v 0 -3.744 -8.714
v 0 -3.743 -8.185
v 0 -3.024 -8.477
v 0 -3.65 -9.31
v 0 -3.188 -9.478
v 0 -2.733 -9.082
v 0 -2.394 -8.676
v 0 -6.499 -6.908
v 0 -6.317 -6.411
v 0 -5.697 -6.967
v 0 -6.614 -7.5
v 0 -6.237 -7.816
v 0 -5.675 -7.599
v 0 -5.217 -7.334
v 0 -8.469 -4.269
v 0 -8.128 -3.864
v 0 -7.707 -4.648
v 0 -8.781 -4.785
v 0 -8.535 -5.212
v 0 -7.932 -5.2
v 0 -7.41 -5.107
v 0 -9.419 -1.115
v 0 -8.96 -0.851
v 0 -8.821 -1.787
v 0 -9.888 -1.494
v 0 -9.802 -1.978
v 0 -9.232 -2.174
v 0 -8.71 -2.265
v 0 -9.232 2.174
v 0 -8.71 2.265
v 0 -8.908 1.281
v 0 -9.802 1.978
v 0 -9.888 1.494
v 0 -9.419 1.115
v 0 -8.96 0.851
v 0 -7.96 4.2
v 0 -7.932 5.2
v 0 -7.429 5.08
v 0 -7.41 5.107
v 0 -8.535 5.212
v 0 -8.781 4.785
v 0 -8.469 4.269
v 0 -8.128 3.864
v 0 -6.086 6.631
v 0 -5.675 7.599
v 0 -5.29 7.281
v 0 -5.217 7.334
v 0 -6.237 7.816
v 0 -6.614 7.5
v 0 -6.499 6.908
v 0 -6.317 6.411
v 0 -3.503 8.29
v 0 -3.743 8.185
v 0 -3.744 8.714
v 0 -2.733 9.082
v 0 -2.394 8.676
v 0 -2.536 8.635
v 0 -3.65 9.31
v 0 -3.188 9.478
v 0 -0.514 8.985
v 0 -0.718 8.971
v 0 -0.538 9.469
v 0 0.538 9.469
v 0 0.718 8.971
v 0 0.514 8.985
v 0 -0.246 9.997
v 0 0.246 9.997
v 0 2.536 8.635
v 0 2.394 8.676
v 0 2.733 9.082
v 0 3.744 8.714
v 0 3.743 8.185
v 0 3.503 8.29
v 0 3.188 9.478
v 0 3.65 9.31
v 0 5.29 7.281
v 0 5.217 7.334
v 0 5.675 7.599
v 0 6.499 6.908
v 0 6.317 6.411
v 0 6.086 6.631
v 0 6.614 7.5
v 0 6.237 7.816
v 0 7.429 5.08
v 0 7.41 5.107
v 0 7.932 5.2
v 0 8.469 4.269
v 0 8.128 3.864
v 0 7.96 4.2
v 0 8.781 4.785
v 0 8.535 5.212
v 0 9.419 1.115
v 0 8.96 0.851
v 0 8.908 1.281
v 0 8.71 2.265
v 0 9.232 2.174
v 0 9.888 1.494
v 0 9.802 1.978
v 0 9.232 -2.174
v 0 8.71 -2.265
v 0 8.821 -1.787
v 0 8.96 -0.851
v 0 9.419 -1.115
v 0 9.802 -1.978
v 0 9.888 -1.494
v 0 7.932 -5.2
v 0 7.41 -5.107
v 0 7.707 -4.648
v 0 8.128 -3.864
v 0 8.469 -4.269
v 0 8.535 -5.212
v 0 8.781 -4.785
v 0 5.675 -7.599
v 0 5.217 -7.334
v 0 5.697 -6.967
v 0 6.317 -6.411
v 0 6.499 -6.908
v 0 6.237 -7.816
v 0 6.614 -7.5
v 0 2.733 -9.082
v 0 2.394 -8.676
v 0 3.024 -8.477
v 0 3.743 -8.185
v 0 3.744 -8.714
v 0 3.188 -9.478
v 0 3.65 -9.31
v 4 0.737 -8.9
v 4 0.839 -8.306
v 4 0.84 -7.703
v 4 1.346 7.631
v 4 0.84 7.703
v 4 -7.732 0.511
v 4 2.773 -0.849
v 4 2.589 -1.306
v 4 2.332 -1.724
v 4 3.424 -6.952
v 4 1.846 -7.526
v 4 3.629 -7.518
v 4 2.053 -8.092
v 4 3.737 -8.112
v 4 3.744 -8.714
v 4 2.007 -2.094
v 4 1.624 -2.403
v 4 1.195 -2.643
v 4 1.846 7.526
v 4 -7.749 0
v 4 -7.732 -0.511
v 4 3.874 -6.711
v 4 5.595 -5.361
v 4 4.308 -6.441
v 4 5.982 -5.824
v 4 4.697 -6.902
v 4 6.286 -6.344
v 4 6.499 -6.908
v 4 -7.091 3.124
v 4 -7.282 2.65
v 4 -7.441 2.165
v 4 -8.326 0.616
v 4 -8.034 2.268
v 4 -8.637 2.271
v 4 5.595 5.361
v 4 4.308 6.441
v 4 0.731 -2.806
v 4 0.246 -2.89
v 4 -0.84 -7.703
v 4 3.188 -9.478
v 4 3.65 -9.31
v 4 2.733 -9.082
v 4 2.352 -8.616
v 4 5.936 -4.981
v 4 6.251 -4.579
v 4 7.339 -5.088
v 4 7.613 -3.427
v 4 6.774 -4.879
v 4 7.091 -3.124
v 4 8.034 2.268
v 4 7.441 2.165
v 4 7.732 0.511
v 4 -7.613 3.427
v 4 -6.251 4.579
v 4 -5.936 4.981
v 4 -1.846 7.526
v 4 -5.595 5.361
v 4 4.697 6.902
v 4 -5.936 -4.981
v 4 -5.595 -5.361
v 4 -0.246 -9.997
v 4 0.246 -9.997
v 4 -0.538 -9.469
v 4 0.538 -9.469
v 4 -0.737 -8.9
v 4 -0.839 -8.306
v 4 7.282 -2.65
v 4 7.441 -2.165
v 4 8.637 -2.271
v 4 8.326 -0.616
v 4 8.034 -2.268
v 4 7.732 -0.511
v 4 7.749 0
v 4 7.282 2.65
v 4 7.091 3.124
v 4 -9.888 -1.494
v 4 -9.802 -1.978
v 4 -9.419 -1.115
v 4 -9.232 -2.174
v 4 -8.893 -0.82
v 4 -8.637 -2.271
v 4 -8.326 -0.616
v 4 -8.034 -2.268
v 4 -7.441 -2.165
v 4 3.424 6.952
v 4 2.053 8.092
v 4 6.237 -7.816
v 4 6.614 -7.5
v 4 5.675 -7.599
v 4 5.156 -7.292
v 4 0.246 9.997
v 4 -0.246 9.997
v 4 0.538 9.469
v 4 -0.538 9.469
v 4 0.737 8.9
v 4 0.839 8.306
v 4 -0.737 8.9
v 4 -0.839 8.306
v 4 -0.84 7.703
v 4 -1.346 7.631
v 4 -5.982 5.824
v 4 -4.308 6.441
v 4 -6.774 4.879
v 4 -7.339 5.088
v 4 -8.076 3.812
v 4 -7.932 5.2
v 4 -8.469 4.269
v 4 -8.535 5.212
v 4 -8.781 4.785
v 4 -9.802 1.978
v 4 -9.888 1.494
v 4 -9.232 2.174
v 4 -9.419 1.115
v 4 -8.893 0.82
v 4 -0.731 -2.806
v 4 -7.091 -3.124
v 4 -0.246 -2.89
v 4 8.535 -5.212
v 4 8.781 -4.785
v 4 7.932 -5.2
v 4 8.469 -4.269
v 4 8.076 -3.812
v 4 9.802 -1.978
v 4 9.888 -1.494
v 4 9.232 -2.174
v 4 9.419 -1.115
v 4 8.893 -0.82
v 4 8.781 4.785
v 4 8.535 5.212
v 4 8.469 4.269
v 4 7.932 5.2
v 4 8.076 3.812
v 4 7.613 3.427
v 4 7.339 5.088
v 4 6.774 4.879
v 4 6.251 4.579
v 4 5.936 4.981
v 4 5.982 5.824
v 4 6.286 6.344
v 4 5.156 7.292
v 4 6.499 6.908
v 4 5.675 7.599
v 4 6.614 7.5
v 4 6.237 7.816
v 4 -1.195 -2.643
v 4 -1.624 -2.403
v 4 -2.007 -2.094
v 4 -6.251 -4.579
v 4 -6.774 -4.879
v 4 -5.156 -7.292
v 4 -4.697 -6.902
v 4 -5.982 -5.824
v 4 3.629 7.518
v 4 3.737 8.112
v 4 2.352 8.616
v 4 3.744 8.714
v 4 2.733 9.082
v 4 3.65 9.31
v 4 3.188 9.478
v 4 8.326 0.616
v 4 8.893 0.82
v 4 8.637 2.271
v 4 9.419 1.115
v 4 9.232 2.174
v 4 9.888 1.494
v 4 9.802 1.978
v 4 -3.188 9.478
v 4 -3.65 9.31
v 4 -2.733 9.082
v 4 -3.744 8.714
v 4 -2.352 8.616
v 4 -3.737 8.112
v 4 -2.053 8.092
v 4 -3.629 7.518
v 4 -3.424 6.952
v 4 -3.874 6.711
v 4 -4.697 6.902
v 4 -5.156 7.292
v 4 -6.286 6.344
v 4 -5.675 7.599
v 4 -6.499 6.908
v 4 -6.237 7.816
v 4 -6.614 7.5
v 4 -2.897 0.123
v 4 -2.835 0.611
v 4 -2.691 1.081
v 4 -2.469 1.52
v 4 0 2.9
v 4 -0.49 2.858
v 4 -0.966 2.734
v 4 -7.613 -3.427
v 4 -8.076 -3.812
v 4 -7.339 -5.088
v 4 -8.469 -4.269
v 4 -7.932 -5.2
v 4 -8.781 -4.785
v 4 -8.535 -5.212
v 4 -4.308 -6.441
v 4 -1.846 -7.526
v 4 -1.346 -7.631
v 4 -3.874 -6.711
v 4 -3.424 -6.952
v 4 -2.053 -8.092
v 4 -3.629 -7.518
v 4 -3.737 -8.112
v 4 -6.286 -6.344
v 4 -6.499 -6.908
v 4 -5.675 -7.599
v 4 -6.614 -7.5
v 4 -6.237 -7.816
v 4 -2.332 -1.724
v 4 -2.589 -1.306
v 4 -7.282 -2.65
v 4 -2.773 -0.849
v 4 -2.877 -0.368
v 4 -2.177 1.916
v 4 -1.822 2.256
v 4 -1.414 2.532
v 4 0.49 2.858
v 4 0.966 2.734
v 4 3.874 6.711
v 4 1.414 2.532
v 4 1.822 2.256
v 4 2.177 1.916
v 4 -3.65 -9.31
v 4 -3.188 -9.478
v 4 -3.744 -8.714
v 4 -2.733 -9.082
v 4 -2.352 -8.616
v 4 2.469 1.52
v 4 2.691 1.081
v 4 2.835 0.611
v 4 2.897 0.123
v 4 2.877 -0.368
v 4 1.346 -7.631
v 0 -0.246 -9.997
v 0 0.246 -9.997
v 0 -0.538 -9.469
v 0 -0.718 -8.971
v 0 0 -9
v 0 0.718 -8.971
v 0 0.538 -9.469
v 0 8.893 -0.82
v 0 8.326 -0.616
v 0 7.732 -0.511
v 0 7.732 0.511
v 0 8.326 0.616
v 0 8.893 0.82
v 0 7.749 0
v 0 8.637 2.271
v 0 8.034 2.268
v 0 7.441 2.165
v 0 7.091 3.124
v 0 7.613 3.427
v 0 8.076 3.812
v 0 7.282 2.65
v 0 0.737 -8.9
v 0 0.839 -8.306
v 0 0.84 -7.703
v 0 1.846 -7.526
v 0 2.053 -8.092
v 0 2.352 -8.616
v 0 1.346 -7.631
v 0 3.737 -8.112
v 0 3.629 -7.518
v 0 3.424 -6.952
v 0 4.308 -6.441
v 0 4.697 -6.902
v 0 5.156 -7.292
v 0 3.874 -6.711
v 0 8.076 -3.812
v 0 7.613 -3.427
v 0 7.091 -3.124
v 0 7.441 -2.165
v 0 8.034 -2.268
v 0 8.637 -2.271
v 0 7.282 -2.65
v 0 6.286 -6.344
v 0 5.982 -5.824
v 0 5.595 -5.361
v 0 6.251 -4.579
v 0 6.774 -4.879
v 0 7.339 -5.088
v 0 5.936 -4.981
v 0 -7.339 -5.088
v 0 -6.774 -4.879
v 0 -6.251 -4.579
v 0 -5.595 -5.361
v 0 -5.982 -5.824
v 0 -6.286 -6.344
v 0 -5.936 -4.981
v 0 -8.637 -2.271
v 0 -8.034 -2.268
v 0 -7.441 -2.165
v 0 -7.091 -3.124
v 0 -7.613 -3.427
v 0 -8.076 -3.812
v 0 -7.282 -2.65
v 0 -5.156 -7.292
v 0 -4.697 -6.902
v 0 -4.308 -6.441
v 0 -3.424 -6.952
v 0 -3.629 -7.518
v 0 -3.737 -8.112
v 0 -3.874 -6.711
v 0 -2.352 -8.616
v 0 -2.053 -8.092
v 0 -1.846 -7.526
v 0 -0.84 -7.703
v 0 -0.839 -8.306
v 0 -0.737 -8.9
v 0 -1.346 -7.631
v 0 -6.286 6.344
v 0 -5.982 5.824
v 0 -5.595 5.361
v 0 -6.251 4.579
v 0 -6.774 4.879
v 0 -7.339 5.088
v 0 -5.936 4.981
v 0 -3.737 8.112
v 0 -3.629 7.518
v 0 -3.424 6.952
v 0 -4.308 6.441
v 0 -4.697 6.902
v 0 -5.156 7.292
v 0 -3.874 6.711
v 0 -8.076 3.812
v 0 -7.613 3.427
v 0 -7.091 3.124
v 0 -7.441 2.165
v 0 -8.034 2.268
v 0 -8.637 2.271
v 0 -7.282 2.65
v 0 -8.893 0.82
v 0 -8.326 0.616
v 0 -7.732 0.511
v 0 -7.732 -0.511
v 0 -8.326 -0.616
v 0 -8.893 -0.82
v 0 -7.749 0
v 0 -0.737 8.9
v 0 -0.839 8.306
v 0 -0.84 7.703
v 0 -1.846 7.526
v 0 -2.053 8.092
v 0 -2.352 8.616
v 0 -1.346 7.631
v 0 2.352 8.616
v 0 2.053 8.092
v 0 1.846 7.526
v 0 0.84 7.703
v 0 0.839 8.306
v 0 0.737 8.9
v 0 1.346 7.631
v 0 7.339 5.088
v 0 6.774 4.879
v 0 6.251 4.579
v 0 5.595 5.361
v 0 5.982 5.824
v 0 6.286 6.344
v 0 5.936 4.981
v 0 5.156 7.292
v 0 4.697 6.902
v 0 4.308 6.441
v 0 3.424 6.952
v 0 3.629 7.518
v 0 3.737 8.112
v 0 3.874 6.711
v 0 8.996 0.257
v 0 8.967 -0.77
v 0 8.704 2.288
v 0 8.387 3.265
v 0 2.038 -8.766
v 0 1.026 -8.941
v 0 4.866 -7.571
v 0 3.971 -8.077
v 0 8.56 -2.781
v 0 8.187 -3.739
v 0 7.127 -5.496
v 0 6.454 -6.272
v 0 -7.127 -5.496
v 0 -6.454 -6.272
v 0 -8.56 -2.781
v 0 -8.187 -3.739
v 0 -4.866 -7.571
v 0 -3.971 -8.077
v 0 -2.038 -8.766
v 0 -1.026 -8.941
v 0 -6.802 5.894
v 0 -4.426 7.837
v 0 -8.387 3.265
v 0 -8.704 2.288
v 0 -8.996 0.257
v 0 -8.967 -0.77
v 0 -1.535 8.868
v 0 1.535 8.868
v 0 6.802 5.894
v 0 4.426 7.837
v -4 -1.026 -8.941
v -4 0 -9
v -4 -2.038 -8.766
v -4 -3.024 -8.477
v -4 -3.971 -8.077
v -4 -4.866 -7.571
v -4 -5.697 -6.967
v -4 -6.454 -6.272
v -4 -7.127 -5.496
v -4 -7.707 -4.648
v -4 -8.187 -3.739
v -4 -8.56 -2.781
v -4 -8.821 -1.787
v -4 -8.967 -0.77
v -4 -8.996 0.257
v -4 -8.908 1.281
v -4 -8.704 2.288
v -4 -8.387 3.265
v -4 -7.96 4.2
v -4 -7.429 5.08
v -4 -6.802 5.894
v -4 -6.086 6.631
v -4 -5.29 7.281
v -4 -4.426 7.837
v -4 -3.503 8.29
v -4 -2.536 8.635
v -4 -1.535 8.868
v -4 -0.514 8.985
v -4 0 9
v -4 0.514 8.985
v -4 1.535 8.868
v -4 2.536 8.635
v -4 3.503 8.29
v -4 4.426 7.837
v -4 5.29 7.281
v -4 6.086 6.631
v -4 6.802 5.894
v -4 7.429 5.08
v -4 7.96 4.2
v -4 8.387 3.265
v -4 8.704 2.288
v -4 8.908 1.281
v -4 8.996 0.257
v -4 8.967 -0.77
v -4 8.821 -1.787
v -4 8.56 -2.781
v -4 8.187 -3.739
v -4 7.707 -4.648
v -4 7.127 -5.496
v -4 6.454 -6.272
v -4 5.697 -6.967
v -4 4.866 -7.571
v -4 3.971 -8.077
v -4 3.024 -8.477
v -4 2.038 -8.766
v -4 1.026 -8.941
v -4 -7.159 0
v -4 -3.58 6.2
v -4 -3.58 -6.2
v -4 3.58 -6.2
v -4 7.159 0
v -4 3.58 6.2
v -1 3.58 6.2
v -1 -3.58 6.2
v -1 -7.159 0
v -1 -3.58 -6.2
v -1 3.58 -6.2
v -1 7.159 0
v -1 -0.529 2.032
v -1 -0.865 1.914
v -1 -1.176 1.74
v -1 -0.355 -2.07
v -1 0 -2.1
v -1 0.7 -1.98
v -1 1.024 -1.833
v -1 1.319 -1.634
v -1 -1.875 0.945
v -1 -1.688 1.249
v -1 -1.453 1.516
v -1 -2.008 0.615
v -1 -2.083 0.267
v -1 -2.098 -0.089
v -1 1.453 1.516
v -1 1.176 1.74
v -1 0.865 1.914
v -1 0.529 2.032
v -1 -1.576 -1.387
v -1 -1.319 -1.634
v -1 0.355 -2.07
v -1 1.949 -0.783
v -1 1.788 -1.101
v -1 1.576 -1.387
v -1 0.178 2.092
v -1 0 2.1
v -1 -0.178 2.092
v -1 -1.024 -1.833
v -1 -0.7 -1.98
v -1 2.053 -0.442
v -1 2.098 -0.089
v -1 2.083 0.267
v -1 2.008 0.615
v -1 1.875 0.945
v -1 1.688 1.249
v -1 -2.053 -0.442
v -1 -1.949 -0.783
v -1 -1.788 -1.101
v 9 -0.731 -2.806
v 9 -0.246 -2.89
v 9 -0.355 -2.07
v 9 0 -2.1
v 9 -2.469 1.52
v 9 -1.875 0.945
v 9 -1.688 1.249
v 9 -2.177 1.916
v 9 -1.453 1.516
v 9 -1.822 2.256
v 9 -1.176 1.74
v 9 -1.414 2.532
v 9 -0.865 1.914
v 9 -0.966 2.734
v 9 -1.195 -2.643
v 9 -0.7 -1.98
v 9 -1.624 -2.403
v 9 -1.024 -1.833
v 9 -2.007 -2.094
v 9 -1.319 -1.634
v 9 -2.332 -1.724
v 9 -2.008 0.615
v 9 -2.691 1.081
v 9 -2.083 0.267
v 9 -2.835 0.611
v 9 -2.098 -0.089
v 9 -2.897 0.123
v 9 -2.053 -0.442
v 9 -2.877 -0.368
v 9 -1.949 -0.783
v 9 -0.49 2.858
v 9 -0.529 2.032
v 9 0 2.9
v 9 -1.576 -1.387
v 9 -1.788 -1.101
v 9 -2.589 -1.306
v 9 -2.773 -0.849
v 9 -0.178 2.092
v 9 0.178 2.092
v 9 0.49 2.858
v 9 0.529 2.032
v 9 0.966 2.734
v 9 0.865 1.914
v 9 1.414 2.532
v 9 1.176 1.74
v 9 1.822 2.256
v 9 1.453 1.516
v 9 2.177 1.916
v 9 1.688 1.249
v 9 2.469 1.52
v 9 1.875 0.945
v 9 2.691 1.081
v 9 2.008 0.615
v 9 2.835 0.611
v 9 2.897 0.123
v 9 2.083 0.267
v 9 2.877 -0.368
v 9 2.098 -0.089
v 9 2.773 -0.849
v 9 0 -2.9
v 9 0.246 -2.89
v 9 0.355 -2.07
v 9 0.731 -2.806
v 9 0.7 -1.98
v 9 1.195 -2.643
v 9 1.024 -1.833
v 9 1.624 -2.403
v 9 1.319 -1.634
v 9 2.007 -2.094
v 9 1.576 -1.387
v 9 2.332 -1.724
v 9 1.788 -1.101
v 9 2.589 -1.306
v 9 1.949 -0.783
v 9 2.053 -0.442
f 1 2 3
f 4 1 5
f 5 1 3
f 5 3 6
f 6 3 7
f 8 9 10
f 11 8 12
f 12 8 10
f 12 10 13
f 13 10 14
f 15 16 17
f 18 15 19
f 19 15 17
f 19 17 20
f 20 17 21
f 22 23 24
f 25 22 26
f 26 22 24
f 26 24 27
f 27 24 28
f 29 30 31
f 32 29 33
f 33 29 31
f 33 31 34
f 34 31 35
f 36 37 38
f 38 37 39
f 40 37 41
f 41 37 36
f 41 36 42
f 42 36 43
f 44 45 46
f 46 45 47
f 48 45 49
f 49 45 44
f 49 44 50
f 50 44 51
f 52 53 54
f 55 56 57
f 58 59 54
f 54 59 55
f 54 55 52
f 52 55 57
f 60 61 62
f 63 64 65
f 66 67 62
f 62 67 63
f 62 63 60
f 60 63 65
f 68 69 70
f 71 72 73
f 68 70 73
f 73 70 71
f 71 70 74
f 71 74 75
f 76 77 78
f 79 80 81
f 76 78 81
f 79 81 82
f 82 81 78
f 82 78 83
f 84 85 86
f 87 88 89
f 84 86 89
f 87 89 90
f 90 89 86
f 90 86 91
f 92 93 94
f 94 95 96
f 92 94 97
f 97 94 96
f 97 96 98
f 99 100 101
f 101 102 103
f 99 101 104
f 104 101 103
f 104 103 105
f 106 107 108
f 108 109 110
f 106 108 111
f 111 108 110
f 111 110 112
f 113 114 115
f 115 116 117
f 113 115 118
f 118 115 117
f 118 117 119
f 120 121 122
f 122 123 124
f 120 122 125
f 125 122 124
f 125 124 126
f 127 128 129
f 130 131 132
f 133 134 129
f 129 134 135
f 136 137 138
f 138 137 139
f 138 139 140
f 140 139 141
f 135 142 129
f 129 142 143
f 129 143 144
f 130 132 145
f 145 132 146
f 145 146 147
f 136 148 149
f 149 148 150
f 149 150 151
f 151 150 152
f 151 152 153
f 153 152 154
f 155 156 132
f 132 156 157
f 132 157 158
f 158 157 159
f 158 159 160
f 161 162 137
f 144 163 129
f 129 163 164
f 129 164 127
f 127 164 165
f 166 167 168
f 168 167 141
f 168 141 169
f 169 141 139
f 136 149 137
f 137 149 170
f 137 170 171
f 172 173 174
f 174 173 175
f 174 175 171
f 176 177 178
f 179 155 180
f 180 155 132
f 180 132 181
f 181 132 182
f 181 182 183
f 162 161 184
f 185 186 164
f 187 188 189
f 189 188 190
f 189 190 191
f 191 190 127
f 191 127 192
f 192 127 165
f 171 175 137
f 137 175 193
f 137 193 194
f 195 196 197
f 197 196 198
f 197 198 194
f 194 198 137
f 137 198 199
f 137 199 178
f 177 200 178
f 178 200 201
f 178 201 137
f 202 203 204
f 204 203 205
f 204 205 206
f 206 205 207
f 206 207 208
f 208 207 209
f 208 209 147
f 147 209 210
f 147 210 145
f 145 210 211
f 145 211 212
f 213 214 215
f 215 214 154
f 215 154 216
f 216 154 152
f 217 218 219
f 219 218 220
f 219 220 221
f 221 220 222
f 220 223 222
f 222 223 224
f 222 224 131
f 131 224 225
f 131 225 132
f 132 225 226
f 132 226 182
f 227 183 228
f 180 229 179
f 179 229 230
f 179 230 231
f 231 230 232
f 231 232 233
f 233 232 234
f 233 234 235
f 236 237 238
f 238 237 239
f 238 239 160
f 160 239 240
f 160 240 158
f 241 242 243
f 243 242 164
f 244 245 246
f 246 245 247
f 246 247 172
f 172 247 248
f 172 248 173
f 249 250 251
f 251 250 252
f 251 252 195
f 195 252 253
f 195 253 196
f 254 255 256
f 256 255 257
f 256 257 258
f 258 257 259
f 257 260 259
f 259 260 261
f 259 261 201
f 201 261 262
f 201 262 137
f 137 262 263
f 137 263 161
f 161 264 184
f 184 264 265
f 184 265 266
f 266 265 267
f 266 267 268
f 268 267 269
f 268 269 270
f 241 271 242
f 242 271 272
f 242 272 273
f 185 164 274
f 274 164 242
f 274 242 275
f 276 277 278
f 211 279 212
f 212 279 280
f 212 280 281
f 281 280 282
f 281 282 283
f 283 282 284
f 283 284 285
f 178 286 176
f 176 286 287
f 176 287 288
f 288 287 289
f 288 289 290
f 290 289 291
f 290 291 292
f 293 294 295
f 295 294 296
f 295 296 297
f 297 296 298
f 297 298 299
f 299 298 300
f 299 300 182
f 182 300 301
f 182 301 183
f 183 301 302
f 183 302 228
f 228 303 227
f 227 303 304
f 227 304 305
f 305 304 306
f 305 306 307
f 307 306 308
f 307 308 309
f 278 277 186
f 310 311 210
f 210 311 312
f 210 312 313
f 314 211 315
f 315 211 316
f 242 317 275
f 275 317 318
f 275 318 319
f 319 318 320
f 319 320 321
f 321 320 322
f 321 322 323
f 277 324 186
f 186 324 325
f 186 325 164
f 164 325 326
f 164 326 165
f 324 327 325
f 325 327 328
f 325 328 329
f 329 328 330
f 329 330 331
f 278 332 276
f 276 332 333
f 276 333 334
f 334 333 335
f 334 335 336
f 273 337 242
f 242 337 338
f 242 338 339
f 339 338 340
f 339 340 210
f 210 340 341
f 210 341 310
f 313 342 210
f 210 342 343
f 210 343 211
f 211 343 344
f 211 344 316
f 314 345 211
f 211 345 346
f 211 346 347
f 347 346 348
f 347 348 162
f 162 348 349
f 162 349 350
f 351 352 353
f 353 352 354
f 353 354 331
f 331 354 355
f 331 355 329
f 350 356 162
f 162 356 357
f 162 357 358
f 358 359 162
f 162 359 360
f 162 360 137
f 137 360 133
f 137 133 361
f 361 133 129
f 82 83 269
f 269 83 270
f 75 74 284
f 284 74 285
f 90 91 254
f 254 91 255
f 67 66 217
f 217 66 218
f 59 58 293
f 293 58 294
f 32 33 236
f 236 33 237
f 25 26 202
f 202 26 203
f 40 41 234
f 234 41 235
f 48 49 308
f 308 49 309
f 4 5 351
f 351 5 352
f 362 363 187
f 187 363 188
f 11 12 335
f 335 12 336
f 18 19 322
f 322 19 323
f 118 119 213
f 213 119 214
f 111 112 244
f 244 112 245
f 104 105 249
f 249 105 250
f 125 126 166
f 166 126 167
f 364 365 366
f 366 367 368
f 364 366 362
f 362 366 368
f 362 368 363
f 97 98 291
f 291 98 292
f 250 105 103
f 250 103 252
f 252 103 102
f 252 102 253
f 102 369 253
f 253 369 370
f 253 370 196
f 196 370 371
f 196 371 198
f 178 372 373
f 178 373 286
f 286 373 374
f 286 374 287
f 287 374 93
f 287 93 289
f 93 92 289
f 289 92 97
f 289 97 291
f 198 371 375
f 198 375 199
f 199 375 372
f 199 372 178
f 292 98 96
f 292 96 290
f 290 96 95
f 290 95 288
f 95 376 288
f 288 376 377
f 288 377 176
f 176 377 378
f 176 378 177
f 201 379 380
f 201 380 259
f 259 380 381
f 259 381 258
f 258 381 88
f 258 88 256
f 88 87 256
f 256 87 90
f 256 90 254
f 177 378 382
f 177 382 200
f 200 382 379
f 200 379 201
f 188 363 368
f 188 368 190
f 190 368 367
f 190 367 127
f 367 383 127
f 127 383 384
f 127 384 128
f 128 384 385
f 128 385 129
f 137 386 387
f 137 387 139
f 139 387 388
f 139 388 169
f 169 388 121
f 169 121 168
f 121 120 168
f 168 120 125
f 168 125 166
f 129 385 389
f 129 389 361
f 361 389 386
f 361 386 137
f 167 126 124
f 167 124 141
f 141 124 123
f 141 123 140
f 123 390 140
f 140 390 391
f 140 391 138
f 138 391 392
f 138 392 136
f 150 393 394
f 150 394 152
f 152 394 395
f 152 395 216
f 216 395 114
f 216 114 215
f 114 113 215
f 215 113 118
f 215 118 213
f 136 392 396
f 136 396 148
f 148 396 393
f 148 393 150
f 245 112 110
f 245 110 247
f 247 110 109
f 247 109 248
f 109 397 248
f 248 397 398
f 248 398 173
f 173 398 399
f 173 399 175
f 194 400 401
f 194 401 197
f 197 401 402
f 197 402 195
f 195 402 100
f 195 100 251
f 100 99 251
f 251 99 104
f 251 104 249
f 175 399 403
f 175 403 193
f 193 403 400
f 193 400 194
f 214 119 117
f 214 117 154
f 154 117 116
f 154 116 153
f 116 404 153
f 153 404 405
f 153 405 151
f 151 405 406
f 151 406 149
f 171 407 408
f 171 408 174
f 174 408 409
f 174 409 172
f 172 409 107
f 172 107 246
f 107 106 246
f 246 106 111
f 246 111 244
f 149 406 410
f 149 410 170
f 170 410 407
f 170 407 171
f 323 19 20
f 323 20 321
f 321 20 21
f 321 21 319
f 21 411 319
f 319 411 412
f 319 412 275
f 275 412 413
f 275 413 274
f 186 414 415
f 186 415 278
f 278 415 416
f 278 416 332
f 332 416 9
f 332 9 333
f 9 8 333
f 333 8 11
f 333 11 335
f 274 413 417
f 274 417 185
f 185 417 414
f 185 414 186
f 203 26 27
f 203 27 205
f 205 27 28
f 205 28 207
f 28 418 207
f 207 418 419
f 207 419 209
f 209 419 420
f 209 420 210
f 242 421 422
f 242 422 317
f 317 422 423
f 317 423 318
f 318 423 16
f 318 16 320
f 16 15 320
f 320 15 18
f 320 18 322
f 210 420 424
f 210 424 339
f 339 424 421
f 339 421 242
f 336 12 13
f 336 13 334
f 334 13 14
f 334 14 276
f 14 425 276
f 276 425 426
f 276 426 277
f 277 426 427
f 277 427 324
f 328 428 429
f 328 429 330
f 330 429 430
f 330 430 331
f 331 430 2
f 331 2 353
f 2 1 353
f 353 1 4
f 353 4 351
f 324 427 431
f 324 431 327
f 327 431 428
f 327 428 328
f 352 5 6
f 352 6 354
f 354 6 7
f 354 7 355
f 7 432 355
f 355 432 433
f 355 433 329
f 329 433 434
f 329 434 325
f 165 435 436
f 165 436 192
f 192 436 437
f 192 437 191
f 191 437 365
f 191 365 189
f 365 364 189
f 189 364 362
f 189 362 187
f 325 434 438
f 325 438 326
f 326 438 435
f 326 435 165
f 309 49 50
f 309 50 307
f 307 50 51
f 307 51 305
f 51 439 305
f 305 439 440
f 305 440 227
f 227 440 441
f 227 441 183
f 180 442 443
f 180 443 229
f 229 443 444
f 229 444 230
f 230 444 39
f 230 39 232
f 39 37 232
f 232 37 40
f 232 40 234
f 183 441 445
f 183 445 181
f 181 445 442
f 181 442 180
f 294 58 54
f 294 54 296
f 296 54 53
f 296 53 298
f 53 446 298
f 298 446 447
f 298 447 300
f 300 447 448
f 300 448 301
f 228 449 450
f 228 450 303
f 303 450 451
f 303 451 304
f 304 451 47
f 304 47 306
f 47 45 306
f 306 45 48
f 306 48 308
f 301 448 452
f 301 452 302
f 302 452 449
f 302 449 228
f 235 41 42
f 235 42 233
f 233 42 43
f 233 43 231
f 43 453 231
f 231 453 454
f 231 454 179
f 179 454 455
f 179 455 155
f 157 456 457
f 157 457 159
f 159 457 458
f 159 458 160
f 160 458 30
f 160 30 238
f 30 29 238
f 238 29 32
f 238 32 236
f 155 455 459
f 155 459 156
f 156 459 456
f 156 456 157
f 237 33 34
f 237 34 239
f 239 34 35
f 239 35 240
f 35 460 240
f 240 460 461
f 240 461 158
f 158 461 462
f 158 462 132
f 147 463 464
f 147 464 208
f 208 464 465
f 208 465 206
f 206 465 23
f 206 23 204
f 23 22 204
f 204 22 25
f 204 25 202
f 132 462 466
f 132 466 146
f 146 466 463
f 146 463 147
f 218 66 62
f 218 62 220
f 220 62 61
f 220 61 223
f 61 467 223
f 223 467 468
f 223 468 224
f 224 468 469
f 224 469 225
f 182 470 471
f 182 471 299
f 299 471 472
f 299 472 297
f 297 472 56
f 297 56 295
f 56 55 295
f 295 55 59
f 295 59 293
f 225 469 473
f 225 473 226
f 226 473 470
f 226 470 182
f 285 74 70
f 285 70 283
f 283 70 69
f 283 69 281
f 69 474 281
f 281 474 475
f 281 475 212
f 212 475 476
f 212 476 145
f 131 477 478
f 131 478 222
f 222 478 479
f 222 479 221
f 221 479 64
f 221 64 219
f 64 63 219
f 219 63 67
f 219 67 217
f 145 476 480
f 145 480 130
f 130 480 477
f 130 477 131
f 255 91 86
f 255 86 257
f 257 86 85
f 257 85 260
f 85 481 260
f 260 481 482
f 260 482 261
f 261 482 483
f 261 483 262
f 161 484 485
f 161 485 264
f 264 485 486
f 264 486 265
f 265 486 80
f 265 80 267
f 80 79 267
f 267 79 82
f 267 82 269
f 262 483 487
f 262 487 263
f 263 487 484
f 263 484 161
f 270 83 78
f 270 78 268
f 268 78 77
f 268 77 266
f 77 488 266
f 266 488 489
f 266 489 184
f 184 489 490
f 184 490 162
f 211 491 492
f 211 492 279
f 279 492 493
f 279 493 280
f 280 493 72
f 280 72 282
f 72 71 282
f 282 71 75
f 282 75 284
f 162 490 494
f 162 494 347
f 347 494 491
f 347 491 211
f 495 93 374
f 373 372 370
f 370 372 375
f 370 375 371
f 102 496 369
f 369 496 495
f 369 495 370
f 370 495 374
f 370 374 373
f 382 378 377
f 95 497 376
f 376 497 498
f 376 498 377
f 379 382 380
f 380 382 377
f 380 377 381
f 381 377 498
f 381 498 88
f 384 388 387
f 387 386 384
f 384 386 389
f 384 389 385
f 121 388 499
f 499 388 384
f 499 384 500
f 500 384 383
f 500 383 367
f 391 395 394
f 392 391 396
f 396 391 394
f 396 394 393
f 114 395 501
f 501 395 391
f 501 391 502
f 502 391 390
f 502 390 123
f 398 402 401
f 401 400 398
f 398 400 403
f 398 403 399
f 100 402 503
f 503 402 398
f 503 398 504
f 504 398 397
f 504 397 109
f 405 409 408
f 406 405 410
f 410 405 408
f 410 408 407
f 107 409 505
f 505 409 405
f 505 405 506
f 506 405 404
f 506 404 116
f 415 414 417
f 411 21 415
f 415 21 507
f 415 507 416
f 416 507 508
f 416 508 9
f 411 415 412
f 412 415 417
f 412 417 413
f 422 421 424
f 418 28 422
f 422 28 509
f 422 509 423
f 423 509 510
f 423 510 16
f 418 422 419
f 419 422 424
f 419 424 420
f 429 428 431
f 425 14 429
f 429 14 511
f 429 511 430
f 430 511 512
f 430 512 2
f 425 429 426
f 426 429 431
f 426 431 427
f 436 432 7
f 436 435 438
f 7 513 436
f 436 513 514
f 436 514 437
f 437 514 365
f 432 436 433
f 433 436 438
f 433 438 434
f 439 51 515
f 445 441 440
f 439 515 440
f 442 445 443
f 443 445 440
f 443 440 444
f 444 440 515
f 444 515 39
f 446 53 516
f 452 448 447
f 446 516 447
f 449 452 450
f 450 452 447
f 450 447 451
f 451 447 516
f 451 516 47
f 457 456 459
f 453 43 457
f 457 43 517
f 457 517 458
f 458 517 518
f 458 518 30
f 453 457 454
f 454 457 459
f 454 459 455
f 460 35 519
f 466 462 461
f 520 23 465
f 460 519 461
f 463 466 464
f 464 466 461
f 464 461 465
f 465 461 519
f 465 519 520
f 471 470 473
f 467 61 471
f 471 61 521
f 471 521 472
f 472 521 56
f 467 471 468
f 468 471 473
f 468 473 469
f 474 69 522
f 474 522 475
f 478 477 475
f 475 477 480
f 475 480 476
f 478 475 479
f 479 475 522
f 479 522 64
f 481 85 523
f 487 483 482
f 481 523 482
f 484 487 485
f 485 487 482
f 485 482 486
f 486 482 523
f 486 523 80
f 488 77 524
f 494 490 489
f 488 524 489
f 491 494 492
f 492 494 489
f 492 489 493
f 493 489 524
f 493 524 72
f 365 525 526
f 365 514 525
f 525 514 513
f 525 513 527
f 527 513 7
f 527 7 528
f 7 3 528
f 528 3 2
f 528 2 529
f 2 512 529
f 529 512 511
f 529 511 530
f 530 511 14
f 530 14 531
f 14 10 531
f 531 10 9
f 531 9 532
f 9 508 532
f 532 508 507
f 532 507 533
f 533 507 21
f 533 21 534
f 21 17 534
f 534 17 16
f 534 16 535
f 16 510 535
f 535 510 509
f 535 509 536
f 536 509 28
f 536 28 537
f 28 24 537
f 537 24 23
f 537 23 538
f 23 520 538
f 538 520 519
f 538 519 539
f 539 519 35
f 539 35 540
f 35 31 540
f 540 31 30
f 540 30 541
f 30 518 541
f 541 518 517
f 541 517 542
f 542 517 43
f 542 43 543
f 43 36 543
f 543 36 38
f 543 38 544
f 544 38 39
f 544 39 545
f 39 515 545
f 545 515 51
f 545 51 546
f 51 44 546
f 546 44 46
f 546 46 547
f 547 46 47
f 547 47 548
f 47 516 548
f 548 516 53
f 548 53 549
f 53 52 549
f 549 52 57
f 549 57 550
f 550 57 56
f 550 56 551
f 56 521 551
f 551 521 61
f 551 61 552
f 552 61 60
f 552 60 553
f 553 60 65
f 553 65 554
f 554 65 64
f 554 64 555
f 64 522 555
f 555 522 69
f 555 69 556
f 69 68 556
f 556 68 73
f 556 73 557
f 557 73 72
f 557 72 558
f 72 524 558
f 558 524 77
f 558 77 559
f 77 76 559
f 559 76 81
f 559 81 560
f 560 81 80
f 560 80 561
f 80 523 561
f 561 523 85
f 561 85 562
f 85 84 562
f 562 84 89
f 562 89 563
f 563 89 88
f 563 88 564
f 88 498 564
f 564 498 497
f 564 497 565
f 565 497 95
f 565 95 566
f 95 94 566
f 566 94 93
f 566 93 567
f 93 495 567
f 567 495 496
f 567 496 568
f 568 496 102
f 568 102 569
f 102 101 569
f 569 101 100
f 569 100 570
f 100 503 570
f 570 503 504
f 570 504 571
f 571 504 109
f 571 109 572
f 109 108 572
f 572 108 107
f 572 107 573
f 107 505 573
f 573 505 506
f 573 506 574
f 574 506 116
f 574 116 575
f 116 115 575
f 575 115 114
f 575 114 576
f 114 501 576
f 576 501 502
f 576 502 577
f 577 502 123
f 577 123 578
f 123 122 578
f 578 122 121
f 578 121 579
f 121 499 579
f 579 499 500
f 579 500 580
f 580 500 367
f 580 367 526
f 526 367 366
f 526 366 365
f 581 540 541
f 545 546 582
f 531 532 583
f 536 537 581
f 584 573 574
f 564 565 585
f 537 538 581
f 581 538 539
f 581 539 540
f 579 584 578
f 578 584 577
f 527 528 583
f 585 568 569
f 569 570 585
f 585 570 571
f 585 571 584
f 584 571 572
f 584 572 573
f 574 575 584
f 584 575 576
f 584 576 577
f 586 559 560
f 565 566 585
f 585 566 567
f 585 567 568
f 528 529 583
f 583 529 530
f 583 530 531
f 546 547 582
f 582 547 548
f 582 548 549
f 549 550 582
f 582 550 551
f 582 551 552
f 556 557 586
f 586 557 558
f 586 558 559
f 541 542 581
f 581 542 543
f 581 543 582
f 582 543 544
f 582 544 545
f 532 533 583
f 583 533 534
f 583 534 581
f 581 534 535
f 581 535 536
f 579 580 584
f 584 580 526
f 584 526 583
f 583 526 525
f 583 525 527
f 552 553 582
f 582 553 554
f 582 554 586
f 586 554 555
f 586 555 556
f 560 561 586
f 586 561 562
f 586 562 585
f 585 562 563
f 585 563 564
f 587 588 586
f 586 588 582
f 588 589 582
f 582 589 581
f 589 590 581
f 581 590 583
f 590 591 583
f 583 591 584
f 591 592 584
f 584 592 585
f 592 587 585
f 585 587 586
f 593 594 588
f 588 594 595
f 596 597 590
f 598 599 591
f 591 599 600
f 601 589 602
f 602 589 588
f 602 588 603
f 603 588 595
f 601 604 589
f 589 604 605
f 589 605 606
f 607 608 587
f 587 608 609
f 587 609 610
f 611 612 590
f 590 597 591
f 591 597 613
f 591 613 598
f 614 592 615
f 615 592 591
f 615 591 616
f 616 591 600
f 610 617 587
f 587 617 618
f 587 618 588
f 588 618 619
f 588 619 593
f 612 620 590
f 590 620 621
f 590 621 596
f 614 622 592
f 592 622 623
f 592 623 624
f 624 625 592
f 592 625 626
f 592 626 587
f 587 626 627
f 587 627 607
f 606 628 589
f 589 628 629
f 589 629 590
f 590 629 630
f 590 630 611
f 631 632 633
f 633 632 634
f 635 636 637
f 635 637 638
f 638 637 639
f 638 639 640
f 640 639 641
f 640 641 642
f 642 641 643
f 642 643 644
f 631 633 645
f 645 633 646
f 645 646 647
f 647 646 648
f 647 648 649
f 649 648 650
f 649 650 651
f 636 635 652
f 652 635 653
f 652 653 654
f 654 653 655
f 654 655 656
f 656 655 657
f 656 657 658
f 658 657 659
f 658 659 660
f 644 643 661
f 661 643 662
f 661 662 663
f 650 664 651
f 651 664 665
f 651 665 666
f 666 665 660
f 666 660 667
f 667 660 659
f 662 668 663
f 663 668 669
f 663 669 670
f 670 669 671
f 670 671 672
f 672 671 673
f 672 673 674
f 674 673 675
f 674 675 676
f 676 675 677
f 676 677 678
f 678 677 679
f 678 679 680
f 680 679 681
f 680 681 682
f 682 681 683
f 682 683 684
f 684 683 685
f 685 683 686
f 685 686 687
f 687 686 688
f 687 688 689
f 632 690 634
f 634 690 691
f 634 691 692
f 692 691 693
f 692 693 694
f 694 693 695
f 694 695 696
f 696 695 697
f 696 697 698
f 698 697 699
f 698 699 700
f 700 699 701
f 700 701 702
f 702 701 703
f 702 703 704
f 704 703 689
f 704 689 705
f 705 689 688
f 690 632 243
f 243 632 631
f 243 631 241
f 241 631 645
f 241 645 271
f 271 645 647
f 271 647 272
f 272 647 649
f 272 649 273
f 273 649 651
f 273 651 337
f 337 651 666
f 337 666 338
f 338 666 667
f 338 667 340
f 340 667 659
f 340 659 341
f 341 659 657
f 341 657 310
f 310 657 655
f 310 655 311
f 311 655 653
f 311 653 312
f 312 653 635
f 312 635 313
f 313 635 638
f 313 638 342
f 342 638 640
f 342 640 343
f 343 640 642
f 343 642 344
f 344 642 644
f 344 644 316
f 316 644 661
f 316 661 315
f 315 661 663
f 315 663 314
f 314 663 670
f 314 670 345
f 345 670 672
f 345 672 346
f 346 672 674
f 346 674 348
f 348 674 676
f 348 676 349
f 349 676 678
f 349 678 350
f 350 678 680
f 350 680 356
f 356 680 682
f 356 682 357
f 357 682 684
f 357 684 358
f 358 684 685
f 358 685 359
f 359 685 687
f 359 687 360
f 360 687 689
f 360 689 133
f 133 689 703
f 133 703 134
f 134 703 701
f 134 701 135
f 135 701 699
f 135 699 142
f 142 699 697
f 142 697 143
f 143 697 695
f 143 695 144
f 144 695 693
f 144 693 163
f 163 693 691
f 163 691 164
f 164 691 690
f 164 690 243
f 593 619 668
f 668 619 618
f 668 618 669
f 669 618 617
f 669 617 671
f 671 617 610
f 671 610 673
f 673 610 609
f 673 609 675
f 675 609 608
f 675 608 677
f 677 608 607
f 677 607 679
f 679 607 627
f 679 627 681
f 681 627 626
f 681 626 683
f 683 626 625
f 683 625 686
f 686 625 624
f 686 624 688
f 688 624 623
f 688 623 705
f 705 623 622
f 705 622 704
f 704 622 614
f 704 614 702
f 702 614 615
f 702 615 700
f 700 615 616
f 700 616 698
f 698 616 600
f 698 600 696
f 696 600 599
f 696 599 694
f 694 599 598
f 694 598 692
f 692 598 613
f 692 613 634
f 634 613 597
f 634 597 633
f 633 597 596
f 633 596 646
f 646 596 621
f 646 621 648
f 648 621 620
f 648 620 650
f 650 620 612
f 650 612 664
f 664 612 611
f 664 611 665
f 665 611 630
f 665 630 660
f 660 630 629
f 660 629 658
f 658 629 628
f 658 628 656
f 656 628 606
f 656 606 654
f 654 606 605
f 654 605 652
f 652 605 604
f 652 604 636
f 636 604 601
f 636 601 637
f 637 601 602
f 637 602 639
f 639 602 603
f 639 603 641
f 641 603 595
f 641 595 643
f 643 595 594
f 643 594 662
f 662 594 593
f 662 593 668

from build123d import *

# Parameters (mm, degrees)
BASPROSKE_W         = 4
BASPROSKE_H         = 10
TOOTHCUT_DEPTH      = 15.696938457
TEETHCUTS_COUNT     = 18
TEETHCUTS_ANGLE     = 340
BORSKE_R            = 2
BORE_DEPTH          = 50.0000508
SKETCH_1_R          = 9
EXTRUDE_1_DEPTH     = 4
SKETCH_2_R          = 2
CUT_EXTRUDE_1_DEPTH = 17.179282483
CUT_EXTRUDE_2_DEPTH = 3
SKETCH_6_R          = 2.9
EXTRUDE_2_DEPTH     = 5
SKETCH_7_R          = 2.1
CUT_EXTRUDE_3_DEPTH = 20.151218803


with BuildPart() as part:
    # BasProSke → Base-Revolve (revolve)
    with BuildSketch(Plane(origin=(0, 0, 0), x_dir=(1, 0, 0), z_dir=(0, 1, 0)), mode=Mode.PRIVATE) as base_revolve_sk:
        with Locations((2, 5)):
            Rectangle(BASPROSKE_W, BASPROSKE_H)
    revolve(base_revolve_sk.sketch.rotate(Axis((-10, 0, 0), (1, 0, 0)), 180), axis=Axis((-10, 0, 0), (1, 0, 0)))

    # TooCutSke → ToothCut (cut, through all)
    with BuildSketch(Plane(origin=(0, 0, 0), x_dir=(0, 0, -1), z_dir=(1, 0, 0))):
        with BuildLine():
            ThreePointArc((0.510641536, 7.732156635), (0, 7.749), (-0.510641536, 7.732156635))
            ThreePointArc((-0.510641536, 7.732156635), (-0.82619259, 8.907320741), (-1.515208602, 9.910236529))
            ThreePointArc((-1.515208602, 9.910236529), (0, 10.0254), (1.515208602, 9.910236529))
            ThreePointArc((1.515208602, 9.910236529), (0.82619259, 8.907320741), (0.510641536, 7.732156635))
        make_face()
    toothcut = extrude(amount=TOOTHCUT_DEPTH, mode=Mode.SUBTRACT)

    # TeethCuts: ToothCut ×18 about axis
    teethcuts_axis = Axis((-10, 0, 0), (1, 0, 0))
    for i in range(1, TEETHCUTS_COUNT):
        add(toothcut.rotate(teethcuts_axis, i * TEETHCUTS_ANGLE / (TEETHCUTS_COUNT - 1)), mode=Mode.SUBTRACT)

    # BorSke → Bore (cut, symmetric)
    with BuildSketch(Plane(origin=(0, 0, 0), x_dir=(0, 0, -1), z_dir=(1, 0, 0))):
        with Locations(Location((0, 0, 0), (0, 0, 180))):
            Circle(BORSKE_R)
    extrude(amount=BORE_DEPTH, both=True, mode=Mode.SUBTRACT)

    # 草图1 → 凸台-拉伸1 (add)
    with BuildSketch(Plane.ZY):
        with Locations(Location((0, 0, 0), (0, 0, 184.575164613))):
            Circle(SKETCH_1_R)
    extrude(amount=EXTRUDE_1_DEPTH)

    # 草图2 → 切除-拉伸1 (cut, through all)
    with BuildSketch(Plane.ZY.offset(4)):
        Circle(SKETCH_2_R)
    extrude(amount=-CUT_EXTRUDE_1_DEPTH, mode=Mode.SUBTRACT)

    # 草图3 → 切除-拉伸2 (cut)
    with BuildSketch(Plane.ZY.offset(4)):
        Polygon((6.2, 3.579571669), (0, 7.159143338), (-6.2, 3.579571669), (-6.2, -3.579571669), (0, -7.159143338), (6.2, -3.579571669), align=None)
    extrude(amount=-CUT_EXTRUDE_2_DEPTH, mode=Mode.SUBTRACT)

    # 草图6 → 凸台-拉伸2 (add)
    with BuildSketch(Plane(origin=(4, 0, 0), x_dir=(0, 0, -1), z_dir=(1, 0, 0))):
        with Locations(Location((0, 0, 0), (0, 0, 180))):
            Circle(SKETCH_6_R)
    extrude(amount=EXTRUDE_2_DEPTH)

    # 草图7 → 切除-拉伸3 (cut, through all)
    with BuildSketch(Plane(origin=(9, 0, 0), x_dir=(0, 0, -1), z_dir=(1, 0, 0))):
        Circle(SKETCH_7_R)
    extrude(amount=-CUT_EXTRUDE_3_DEPTH, mode=Mode.SUBTRACT)


solid = part.part
